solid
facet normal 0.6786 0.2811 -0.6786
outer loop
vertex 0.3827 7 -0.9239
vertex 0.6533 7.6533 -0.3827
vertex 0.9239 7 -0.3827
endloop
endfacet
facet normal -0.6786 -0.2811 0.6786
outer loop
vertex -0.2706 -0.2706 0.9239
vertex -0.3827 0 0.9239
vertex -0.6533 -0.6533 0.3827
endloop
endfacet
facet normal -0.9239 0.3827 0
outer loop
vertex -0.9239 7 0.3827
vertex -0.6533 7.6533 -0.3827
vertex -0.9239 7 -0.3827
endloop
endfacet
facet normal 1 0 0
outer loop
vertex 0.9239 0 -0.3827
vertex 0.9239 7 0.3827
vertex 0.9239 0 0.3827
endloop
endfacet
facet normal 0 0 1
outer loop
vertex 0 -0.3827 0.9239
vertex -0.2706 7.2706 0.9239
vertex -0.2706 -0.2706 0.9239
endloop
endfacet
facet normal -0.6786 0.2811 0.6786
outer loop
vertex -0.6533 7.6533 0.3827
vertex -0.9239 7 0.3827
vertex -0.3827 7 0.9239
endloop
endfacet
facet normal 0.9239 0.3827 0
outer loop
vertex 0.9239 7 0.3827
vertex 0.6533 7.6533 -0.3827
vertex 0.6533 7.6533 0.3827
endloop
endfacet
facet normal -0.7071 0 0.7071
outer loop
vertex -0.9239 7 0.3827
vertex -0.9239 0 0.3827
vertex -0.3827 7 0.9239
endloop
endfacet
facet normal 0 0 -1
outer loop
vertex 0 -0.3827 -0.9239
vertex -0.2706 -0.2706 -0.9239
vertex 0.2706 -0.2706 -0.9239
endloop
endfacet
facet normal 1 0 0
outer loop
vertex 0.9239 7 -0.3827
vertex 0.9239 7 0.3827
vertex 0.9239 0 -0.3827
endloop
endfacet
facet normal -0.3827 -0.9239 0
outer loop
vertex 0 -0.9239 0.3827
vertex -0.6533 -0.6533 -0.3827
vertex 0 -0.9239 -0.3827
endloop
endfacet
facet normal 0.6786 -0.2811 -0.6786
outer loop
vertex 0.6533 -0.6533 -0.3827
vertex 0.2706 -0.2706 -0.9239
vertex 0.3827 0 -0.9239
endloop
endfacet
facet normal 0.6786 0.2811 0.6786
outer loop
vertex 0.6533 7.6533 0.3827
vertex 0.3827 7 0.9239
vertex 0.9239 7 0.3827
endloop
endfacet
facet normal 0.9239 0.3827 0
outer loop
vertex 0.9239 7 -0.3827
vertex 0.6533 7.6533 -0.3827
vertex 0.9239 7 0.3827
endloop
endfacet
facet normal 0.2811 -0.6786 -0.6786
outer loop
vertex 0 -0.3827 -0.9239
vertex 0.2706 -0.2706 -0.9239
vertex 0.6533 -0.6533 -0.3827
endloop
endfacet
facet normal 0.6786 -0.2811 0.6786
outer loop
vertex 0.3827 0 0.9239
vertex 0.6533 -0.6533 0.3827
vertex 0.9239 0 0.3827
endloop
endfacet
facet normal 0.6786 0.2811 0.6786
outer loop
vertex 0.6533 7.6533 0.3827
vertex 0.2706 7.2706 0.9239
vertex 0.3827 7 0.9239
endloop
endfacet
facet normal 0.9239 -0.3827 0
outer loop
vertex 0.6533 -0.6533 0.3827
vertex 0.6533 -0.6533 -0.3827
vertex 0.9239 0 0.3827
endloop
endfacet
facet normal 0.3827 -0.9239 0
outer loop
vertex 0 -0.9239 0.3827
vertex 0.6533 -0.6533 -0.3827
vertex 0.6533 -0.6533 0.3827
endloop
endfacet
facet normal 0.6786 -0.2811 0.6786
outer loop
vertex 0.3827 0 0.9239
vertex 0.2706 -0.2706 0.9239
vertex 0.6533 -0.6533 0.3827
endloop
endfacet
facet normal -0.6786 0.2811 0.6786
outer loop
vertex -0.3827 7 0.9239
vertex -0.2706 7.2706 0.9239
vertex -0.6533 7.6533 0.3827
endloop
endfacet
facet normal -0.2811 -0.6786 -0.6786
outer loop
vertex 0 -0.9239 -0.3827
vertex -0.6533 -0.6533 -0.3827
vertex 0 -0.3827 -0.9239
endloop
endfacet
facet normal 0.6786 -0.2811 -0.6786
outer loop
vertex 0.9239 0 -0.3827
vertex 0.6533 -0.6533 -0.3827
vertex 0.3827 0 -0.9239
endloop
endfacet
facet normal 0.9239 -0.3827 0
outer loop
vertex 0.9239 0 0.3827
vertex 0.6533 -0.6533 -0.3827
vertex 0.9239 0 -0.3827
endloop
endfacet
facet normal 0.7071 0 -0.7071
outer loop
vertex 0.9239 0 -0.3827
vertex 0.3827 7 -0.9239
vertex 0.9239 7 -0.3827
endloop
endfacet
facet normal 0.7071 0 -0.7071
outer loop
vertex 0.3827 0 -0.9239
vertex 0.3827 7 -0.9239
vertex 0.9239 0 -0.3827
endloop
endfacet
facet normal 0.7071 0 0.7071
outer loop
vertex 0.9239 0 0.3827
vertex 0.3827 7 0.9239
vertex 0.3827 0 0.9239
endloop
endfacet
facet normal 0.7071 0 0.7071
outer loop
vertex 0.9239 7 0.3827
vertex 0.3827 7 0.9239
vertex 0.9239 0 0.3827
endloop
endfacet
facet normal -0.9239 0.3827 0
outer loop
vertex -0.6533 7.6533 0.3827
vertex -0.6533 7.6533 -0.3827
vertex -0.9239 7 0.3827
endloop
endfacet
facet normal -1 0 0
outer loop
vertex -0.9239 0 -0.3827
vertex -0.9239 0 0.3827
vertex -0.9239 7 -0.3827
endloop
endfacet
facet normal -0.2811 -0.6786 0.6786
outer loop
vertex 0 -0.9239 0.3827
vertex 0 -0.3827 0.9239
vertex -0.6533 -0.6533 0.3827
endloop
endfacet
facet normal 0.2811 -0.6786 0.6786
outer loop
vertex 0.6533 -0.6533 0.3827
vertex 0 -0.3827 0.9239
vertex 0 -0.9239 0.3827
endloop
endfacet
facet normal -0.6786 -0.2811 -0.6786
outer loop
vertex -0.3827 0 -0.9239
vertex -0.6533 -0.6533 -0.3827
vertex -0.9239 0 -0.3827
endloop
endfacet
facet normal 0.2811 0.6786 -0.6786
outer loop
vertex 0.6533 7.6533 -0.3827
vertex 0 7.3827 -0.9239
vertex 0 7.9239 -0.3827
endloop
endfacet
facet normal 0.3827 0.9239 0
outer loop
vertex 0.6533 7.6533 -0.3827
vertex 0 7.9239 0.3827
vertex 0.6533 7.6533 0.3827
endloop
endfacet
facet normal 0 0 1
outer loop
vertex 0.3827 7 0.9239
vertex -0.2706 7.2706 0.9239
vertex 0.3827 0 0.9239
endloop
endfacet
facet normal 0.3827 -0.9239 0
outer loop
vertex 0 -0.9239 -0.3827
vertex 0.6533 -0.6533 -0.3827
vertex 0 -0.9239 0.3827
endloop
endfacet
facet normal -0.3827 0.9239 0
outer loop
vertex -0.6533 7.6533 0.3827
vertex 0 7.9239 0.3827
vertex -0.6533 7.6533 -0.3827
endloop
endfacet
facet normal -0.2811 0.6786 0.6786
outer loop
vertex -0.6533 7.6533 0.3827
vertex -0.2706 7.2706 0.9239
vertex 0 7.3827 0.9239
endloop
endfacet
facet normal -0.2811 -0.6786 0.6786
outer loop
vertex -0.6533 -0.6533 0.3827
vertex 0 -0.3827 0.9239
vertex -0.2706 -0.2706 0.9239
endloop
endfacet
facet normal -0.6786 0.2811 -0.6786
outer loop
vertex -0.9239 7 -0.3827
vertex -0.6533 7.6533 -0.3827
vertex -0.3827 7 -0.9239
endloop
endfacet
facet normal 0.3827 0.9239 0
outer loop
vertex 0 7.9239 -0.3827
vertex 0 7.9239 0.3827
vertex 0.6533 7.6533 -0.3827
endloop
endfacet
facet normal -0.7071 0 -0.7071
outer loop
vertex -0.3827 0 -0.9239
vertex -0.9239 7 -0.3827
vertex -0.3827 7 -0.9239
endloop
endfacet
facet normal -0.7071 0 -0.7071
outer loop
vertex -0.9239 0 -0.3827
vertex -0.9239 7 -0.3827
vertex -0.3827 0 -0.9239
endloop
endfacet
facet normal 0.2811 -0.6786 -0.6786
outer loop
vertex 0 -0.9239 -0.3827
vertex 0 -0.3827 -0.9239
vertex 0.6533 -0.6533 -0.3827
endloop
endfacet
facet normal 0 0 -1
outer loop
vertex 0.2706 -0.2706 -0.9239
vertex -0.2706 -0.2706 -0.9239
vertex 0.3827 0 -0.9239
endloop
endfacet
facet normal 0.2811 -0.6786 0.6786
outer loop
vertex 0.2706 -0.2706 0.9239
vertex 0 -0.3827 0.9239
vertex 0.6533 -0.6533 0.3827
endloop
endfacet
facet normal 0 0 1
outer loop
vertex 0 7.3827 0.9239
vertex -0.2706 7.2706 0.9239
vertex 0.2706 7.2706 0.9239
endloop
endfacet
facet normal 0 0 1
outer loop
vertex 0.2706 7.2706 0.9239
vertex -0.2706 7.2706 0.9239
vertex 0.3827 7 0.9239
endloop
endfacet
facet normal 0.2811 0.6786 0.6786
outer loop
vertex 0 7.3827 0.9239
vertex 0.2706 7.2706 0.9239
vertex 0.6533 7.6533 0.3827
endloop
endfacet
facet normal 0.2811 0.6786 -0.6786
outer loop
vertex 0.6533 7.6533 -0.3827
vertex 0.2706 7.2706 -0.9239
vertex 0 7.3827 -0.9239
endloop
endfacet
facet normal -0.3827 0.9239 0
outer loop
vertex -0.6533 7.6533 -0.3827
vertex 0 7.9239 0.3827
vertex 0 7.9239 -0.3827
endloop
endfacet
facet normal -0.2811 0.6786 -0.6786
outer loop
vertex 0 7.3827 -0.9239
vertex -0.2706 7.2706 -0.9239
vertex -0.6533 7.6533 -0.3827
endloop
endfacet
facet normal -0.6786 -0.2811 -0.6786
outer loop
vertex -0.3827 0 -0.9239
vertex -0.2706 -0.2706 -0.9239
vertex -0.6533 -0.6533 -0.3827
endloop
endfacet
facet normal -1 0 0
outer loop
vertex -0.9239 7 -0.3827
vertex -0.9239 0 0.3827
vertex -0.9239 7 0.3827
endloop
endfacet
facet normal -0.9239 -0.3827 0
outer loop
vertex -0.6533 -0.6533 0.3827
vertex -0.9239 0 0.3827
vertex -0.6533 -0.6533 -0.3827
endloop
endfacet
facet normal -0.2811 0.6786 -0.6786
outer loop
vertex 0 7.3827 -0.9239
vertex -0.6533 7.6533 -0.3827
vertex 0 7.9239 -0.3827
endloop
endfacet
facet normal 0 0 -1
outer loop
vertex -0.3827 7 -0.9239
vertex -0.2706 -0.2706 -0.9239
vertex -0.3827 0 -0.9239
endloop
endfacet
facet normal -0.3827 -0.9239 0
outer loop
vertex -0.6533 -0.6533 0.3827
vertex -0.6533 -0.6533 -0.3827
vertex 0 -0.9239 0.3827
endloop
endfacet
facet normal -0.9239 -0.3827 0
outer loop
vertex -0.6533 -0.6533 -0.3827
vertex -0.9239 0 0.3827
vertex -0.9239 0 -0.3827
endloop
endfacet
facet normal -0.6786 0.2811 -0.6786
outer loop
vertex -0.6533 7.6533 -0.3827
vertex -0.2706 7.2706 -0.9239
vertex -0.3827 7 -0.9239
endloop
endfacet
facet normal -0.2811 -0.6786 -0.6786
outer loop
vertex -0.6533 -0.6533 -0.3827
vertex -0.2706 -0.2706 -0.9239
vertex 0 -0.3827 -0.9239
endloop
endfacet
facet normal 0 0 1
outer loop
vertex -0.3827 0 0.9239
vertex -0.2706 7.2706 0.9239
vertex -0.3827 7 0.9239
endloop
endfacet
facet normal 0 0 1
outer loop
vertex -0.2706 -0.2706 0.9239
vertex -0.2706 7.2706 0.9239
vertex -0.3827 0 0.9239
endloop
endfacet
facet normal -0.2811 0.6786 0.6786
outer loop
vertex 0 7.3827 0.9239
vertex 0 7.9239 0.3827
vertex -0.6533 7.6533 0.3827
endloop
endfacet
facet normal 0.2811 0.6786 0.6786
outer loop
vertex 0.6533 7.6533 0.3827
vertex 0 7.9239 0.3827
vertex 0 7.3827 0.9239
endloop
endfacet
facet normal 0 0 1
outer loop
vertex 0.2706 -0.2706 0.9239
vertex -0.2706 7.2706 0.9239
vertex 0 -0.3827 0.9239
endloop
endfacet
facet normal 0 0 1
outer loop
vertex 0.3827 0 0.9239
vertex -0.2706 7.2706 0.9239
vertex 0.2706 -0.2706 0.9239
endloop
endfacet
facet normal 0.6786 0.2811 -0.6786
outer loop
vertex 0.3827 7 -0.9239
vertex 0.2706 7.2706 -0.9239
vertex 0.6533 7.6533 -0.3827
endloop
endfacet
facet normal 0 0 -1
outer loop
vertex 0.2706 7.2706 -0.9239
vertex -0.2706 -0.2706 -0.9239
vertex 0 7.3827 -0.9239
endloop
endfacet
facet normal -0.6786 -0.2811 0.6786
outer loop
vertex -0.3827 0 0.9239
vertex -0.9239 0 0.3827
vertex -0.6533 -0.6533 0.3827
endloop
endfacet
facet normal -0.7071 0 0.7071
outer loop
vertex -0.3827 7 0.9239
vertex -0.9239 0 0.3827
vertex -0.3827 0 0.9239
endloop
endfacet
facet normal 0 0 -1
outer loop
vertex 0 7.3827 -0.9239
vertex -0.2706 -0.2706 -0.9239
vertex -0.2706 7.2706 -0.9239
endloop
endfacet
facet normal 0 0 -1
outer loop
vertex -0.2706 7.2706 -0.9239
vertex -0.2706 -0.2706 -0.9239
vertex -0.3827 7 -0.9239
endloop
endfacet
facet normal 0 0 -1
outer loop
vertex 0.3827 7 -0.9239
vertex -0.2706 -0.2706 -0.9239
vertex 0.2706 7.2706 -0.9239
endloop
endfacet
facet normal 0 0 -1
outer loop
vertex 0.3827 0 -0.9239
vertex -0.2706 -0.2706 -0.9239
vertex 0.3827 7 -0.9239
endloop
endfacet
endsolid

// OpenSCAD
module rod(a, b, r) {
        hull() {
            translate(a) sphere(r,$fn=8);
            translate(b) sphere(r,$fn=8);
        }
    }

rod([0,0,0],[0,7,0],1);
